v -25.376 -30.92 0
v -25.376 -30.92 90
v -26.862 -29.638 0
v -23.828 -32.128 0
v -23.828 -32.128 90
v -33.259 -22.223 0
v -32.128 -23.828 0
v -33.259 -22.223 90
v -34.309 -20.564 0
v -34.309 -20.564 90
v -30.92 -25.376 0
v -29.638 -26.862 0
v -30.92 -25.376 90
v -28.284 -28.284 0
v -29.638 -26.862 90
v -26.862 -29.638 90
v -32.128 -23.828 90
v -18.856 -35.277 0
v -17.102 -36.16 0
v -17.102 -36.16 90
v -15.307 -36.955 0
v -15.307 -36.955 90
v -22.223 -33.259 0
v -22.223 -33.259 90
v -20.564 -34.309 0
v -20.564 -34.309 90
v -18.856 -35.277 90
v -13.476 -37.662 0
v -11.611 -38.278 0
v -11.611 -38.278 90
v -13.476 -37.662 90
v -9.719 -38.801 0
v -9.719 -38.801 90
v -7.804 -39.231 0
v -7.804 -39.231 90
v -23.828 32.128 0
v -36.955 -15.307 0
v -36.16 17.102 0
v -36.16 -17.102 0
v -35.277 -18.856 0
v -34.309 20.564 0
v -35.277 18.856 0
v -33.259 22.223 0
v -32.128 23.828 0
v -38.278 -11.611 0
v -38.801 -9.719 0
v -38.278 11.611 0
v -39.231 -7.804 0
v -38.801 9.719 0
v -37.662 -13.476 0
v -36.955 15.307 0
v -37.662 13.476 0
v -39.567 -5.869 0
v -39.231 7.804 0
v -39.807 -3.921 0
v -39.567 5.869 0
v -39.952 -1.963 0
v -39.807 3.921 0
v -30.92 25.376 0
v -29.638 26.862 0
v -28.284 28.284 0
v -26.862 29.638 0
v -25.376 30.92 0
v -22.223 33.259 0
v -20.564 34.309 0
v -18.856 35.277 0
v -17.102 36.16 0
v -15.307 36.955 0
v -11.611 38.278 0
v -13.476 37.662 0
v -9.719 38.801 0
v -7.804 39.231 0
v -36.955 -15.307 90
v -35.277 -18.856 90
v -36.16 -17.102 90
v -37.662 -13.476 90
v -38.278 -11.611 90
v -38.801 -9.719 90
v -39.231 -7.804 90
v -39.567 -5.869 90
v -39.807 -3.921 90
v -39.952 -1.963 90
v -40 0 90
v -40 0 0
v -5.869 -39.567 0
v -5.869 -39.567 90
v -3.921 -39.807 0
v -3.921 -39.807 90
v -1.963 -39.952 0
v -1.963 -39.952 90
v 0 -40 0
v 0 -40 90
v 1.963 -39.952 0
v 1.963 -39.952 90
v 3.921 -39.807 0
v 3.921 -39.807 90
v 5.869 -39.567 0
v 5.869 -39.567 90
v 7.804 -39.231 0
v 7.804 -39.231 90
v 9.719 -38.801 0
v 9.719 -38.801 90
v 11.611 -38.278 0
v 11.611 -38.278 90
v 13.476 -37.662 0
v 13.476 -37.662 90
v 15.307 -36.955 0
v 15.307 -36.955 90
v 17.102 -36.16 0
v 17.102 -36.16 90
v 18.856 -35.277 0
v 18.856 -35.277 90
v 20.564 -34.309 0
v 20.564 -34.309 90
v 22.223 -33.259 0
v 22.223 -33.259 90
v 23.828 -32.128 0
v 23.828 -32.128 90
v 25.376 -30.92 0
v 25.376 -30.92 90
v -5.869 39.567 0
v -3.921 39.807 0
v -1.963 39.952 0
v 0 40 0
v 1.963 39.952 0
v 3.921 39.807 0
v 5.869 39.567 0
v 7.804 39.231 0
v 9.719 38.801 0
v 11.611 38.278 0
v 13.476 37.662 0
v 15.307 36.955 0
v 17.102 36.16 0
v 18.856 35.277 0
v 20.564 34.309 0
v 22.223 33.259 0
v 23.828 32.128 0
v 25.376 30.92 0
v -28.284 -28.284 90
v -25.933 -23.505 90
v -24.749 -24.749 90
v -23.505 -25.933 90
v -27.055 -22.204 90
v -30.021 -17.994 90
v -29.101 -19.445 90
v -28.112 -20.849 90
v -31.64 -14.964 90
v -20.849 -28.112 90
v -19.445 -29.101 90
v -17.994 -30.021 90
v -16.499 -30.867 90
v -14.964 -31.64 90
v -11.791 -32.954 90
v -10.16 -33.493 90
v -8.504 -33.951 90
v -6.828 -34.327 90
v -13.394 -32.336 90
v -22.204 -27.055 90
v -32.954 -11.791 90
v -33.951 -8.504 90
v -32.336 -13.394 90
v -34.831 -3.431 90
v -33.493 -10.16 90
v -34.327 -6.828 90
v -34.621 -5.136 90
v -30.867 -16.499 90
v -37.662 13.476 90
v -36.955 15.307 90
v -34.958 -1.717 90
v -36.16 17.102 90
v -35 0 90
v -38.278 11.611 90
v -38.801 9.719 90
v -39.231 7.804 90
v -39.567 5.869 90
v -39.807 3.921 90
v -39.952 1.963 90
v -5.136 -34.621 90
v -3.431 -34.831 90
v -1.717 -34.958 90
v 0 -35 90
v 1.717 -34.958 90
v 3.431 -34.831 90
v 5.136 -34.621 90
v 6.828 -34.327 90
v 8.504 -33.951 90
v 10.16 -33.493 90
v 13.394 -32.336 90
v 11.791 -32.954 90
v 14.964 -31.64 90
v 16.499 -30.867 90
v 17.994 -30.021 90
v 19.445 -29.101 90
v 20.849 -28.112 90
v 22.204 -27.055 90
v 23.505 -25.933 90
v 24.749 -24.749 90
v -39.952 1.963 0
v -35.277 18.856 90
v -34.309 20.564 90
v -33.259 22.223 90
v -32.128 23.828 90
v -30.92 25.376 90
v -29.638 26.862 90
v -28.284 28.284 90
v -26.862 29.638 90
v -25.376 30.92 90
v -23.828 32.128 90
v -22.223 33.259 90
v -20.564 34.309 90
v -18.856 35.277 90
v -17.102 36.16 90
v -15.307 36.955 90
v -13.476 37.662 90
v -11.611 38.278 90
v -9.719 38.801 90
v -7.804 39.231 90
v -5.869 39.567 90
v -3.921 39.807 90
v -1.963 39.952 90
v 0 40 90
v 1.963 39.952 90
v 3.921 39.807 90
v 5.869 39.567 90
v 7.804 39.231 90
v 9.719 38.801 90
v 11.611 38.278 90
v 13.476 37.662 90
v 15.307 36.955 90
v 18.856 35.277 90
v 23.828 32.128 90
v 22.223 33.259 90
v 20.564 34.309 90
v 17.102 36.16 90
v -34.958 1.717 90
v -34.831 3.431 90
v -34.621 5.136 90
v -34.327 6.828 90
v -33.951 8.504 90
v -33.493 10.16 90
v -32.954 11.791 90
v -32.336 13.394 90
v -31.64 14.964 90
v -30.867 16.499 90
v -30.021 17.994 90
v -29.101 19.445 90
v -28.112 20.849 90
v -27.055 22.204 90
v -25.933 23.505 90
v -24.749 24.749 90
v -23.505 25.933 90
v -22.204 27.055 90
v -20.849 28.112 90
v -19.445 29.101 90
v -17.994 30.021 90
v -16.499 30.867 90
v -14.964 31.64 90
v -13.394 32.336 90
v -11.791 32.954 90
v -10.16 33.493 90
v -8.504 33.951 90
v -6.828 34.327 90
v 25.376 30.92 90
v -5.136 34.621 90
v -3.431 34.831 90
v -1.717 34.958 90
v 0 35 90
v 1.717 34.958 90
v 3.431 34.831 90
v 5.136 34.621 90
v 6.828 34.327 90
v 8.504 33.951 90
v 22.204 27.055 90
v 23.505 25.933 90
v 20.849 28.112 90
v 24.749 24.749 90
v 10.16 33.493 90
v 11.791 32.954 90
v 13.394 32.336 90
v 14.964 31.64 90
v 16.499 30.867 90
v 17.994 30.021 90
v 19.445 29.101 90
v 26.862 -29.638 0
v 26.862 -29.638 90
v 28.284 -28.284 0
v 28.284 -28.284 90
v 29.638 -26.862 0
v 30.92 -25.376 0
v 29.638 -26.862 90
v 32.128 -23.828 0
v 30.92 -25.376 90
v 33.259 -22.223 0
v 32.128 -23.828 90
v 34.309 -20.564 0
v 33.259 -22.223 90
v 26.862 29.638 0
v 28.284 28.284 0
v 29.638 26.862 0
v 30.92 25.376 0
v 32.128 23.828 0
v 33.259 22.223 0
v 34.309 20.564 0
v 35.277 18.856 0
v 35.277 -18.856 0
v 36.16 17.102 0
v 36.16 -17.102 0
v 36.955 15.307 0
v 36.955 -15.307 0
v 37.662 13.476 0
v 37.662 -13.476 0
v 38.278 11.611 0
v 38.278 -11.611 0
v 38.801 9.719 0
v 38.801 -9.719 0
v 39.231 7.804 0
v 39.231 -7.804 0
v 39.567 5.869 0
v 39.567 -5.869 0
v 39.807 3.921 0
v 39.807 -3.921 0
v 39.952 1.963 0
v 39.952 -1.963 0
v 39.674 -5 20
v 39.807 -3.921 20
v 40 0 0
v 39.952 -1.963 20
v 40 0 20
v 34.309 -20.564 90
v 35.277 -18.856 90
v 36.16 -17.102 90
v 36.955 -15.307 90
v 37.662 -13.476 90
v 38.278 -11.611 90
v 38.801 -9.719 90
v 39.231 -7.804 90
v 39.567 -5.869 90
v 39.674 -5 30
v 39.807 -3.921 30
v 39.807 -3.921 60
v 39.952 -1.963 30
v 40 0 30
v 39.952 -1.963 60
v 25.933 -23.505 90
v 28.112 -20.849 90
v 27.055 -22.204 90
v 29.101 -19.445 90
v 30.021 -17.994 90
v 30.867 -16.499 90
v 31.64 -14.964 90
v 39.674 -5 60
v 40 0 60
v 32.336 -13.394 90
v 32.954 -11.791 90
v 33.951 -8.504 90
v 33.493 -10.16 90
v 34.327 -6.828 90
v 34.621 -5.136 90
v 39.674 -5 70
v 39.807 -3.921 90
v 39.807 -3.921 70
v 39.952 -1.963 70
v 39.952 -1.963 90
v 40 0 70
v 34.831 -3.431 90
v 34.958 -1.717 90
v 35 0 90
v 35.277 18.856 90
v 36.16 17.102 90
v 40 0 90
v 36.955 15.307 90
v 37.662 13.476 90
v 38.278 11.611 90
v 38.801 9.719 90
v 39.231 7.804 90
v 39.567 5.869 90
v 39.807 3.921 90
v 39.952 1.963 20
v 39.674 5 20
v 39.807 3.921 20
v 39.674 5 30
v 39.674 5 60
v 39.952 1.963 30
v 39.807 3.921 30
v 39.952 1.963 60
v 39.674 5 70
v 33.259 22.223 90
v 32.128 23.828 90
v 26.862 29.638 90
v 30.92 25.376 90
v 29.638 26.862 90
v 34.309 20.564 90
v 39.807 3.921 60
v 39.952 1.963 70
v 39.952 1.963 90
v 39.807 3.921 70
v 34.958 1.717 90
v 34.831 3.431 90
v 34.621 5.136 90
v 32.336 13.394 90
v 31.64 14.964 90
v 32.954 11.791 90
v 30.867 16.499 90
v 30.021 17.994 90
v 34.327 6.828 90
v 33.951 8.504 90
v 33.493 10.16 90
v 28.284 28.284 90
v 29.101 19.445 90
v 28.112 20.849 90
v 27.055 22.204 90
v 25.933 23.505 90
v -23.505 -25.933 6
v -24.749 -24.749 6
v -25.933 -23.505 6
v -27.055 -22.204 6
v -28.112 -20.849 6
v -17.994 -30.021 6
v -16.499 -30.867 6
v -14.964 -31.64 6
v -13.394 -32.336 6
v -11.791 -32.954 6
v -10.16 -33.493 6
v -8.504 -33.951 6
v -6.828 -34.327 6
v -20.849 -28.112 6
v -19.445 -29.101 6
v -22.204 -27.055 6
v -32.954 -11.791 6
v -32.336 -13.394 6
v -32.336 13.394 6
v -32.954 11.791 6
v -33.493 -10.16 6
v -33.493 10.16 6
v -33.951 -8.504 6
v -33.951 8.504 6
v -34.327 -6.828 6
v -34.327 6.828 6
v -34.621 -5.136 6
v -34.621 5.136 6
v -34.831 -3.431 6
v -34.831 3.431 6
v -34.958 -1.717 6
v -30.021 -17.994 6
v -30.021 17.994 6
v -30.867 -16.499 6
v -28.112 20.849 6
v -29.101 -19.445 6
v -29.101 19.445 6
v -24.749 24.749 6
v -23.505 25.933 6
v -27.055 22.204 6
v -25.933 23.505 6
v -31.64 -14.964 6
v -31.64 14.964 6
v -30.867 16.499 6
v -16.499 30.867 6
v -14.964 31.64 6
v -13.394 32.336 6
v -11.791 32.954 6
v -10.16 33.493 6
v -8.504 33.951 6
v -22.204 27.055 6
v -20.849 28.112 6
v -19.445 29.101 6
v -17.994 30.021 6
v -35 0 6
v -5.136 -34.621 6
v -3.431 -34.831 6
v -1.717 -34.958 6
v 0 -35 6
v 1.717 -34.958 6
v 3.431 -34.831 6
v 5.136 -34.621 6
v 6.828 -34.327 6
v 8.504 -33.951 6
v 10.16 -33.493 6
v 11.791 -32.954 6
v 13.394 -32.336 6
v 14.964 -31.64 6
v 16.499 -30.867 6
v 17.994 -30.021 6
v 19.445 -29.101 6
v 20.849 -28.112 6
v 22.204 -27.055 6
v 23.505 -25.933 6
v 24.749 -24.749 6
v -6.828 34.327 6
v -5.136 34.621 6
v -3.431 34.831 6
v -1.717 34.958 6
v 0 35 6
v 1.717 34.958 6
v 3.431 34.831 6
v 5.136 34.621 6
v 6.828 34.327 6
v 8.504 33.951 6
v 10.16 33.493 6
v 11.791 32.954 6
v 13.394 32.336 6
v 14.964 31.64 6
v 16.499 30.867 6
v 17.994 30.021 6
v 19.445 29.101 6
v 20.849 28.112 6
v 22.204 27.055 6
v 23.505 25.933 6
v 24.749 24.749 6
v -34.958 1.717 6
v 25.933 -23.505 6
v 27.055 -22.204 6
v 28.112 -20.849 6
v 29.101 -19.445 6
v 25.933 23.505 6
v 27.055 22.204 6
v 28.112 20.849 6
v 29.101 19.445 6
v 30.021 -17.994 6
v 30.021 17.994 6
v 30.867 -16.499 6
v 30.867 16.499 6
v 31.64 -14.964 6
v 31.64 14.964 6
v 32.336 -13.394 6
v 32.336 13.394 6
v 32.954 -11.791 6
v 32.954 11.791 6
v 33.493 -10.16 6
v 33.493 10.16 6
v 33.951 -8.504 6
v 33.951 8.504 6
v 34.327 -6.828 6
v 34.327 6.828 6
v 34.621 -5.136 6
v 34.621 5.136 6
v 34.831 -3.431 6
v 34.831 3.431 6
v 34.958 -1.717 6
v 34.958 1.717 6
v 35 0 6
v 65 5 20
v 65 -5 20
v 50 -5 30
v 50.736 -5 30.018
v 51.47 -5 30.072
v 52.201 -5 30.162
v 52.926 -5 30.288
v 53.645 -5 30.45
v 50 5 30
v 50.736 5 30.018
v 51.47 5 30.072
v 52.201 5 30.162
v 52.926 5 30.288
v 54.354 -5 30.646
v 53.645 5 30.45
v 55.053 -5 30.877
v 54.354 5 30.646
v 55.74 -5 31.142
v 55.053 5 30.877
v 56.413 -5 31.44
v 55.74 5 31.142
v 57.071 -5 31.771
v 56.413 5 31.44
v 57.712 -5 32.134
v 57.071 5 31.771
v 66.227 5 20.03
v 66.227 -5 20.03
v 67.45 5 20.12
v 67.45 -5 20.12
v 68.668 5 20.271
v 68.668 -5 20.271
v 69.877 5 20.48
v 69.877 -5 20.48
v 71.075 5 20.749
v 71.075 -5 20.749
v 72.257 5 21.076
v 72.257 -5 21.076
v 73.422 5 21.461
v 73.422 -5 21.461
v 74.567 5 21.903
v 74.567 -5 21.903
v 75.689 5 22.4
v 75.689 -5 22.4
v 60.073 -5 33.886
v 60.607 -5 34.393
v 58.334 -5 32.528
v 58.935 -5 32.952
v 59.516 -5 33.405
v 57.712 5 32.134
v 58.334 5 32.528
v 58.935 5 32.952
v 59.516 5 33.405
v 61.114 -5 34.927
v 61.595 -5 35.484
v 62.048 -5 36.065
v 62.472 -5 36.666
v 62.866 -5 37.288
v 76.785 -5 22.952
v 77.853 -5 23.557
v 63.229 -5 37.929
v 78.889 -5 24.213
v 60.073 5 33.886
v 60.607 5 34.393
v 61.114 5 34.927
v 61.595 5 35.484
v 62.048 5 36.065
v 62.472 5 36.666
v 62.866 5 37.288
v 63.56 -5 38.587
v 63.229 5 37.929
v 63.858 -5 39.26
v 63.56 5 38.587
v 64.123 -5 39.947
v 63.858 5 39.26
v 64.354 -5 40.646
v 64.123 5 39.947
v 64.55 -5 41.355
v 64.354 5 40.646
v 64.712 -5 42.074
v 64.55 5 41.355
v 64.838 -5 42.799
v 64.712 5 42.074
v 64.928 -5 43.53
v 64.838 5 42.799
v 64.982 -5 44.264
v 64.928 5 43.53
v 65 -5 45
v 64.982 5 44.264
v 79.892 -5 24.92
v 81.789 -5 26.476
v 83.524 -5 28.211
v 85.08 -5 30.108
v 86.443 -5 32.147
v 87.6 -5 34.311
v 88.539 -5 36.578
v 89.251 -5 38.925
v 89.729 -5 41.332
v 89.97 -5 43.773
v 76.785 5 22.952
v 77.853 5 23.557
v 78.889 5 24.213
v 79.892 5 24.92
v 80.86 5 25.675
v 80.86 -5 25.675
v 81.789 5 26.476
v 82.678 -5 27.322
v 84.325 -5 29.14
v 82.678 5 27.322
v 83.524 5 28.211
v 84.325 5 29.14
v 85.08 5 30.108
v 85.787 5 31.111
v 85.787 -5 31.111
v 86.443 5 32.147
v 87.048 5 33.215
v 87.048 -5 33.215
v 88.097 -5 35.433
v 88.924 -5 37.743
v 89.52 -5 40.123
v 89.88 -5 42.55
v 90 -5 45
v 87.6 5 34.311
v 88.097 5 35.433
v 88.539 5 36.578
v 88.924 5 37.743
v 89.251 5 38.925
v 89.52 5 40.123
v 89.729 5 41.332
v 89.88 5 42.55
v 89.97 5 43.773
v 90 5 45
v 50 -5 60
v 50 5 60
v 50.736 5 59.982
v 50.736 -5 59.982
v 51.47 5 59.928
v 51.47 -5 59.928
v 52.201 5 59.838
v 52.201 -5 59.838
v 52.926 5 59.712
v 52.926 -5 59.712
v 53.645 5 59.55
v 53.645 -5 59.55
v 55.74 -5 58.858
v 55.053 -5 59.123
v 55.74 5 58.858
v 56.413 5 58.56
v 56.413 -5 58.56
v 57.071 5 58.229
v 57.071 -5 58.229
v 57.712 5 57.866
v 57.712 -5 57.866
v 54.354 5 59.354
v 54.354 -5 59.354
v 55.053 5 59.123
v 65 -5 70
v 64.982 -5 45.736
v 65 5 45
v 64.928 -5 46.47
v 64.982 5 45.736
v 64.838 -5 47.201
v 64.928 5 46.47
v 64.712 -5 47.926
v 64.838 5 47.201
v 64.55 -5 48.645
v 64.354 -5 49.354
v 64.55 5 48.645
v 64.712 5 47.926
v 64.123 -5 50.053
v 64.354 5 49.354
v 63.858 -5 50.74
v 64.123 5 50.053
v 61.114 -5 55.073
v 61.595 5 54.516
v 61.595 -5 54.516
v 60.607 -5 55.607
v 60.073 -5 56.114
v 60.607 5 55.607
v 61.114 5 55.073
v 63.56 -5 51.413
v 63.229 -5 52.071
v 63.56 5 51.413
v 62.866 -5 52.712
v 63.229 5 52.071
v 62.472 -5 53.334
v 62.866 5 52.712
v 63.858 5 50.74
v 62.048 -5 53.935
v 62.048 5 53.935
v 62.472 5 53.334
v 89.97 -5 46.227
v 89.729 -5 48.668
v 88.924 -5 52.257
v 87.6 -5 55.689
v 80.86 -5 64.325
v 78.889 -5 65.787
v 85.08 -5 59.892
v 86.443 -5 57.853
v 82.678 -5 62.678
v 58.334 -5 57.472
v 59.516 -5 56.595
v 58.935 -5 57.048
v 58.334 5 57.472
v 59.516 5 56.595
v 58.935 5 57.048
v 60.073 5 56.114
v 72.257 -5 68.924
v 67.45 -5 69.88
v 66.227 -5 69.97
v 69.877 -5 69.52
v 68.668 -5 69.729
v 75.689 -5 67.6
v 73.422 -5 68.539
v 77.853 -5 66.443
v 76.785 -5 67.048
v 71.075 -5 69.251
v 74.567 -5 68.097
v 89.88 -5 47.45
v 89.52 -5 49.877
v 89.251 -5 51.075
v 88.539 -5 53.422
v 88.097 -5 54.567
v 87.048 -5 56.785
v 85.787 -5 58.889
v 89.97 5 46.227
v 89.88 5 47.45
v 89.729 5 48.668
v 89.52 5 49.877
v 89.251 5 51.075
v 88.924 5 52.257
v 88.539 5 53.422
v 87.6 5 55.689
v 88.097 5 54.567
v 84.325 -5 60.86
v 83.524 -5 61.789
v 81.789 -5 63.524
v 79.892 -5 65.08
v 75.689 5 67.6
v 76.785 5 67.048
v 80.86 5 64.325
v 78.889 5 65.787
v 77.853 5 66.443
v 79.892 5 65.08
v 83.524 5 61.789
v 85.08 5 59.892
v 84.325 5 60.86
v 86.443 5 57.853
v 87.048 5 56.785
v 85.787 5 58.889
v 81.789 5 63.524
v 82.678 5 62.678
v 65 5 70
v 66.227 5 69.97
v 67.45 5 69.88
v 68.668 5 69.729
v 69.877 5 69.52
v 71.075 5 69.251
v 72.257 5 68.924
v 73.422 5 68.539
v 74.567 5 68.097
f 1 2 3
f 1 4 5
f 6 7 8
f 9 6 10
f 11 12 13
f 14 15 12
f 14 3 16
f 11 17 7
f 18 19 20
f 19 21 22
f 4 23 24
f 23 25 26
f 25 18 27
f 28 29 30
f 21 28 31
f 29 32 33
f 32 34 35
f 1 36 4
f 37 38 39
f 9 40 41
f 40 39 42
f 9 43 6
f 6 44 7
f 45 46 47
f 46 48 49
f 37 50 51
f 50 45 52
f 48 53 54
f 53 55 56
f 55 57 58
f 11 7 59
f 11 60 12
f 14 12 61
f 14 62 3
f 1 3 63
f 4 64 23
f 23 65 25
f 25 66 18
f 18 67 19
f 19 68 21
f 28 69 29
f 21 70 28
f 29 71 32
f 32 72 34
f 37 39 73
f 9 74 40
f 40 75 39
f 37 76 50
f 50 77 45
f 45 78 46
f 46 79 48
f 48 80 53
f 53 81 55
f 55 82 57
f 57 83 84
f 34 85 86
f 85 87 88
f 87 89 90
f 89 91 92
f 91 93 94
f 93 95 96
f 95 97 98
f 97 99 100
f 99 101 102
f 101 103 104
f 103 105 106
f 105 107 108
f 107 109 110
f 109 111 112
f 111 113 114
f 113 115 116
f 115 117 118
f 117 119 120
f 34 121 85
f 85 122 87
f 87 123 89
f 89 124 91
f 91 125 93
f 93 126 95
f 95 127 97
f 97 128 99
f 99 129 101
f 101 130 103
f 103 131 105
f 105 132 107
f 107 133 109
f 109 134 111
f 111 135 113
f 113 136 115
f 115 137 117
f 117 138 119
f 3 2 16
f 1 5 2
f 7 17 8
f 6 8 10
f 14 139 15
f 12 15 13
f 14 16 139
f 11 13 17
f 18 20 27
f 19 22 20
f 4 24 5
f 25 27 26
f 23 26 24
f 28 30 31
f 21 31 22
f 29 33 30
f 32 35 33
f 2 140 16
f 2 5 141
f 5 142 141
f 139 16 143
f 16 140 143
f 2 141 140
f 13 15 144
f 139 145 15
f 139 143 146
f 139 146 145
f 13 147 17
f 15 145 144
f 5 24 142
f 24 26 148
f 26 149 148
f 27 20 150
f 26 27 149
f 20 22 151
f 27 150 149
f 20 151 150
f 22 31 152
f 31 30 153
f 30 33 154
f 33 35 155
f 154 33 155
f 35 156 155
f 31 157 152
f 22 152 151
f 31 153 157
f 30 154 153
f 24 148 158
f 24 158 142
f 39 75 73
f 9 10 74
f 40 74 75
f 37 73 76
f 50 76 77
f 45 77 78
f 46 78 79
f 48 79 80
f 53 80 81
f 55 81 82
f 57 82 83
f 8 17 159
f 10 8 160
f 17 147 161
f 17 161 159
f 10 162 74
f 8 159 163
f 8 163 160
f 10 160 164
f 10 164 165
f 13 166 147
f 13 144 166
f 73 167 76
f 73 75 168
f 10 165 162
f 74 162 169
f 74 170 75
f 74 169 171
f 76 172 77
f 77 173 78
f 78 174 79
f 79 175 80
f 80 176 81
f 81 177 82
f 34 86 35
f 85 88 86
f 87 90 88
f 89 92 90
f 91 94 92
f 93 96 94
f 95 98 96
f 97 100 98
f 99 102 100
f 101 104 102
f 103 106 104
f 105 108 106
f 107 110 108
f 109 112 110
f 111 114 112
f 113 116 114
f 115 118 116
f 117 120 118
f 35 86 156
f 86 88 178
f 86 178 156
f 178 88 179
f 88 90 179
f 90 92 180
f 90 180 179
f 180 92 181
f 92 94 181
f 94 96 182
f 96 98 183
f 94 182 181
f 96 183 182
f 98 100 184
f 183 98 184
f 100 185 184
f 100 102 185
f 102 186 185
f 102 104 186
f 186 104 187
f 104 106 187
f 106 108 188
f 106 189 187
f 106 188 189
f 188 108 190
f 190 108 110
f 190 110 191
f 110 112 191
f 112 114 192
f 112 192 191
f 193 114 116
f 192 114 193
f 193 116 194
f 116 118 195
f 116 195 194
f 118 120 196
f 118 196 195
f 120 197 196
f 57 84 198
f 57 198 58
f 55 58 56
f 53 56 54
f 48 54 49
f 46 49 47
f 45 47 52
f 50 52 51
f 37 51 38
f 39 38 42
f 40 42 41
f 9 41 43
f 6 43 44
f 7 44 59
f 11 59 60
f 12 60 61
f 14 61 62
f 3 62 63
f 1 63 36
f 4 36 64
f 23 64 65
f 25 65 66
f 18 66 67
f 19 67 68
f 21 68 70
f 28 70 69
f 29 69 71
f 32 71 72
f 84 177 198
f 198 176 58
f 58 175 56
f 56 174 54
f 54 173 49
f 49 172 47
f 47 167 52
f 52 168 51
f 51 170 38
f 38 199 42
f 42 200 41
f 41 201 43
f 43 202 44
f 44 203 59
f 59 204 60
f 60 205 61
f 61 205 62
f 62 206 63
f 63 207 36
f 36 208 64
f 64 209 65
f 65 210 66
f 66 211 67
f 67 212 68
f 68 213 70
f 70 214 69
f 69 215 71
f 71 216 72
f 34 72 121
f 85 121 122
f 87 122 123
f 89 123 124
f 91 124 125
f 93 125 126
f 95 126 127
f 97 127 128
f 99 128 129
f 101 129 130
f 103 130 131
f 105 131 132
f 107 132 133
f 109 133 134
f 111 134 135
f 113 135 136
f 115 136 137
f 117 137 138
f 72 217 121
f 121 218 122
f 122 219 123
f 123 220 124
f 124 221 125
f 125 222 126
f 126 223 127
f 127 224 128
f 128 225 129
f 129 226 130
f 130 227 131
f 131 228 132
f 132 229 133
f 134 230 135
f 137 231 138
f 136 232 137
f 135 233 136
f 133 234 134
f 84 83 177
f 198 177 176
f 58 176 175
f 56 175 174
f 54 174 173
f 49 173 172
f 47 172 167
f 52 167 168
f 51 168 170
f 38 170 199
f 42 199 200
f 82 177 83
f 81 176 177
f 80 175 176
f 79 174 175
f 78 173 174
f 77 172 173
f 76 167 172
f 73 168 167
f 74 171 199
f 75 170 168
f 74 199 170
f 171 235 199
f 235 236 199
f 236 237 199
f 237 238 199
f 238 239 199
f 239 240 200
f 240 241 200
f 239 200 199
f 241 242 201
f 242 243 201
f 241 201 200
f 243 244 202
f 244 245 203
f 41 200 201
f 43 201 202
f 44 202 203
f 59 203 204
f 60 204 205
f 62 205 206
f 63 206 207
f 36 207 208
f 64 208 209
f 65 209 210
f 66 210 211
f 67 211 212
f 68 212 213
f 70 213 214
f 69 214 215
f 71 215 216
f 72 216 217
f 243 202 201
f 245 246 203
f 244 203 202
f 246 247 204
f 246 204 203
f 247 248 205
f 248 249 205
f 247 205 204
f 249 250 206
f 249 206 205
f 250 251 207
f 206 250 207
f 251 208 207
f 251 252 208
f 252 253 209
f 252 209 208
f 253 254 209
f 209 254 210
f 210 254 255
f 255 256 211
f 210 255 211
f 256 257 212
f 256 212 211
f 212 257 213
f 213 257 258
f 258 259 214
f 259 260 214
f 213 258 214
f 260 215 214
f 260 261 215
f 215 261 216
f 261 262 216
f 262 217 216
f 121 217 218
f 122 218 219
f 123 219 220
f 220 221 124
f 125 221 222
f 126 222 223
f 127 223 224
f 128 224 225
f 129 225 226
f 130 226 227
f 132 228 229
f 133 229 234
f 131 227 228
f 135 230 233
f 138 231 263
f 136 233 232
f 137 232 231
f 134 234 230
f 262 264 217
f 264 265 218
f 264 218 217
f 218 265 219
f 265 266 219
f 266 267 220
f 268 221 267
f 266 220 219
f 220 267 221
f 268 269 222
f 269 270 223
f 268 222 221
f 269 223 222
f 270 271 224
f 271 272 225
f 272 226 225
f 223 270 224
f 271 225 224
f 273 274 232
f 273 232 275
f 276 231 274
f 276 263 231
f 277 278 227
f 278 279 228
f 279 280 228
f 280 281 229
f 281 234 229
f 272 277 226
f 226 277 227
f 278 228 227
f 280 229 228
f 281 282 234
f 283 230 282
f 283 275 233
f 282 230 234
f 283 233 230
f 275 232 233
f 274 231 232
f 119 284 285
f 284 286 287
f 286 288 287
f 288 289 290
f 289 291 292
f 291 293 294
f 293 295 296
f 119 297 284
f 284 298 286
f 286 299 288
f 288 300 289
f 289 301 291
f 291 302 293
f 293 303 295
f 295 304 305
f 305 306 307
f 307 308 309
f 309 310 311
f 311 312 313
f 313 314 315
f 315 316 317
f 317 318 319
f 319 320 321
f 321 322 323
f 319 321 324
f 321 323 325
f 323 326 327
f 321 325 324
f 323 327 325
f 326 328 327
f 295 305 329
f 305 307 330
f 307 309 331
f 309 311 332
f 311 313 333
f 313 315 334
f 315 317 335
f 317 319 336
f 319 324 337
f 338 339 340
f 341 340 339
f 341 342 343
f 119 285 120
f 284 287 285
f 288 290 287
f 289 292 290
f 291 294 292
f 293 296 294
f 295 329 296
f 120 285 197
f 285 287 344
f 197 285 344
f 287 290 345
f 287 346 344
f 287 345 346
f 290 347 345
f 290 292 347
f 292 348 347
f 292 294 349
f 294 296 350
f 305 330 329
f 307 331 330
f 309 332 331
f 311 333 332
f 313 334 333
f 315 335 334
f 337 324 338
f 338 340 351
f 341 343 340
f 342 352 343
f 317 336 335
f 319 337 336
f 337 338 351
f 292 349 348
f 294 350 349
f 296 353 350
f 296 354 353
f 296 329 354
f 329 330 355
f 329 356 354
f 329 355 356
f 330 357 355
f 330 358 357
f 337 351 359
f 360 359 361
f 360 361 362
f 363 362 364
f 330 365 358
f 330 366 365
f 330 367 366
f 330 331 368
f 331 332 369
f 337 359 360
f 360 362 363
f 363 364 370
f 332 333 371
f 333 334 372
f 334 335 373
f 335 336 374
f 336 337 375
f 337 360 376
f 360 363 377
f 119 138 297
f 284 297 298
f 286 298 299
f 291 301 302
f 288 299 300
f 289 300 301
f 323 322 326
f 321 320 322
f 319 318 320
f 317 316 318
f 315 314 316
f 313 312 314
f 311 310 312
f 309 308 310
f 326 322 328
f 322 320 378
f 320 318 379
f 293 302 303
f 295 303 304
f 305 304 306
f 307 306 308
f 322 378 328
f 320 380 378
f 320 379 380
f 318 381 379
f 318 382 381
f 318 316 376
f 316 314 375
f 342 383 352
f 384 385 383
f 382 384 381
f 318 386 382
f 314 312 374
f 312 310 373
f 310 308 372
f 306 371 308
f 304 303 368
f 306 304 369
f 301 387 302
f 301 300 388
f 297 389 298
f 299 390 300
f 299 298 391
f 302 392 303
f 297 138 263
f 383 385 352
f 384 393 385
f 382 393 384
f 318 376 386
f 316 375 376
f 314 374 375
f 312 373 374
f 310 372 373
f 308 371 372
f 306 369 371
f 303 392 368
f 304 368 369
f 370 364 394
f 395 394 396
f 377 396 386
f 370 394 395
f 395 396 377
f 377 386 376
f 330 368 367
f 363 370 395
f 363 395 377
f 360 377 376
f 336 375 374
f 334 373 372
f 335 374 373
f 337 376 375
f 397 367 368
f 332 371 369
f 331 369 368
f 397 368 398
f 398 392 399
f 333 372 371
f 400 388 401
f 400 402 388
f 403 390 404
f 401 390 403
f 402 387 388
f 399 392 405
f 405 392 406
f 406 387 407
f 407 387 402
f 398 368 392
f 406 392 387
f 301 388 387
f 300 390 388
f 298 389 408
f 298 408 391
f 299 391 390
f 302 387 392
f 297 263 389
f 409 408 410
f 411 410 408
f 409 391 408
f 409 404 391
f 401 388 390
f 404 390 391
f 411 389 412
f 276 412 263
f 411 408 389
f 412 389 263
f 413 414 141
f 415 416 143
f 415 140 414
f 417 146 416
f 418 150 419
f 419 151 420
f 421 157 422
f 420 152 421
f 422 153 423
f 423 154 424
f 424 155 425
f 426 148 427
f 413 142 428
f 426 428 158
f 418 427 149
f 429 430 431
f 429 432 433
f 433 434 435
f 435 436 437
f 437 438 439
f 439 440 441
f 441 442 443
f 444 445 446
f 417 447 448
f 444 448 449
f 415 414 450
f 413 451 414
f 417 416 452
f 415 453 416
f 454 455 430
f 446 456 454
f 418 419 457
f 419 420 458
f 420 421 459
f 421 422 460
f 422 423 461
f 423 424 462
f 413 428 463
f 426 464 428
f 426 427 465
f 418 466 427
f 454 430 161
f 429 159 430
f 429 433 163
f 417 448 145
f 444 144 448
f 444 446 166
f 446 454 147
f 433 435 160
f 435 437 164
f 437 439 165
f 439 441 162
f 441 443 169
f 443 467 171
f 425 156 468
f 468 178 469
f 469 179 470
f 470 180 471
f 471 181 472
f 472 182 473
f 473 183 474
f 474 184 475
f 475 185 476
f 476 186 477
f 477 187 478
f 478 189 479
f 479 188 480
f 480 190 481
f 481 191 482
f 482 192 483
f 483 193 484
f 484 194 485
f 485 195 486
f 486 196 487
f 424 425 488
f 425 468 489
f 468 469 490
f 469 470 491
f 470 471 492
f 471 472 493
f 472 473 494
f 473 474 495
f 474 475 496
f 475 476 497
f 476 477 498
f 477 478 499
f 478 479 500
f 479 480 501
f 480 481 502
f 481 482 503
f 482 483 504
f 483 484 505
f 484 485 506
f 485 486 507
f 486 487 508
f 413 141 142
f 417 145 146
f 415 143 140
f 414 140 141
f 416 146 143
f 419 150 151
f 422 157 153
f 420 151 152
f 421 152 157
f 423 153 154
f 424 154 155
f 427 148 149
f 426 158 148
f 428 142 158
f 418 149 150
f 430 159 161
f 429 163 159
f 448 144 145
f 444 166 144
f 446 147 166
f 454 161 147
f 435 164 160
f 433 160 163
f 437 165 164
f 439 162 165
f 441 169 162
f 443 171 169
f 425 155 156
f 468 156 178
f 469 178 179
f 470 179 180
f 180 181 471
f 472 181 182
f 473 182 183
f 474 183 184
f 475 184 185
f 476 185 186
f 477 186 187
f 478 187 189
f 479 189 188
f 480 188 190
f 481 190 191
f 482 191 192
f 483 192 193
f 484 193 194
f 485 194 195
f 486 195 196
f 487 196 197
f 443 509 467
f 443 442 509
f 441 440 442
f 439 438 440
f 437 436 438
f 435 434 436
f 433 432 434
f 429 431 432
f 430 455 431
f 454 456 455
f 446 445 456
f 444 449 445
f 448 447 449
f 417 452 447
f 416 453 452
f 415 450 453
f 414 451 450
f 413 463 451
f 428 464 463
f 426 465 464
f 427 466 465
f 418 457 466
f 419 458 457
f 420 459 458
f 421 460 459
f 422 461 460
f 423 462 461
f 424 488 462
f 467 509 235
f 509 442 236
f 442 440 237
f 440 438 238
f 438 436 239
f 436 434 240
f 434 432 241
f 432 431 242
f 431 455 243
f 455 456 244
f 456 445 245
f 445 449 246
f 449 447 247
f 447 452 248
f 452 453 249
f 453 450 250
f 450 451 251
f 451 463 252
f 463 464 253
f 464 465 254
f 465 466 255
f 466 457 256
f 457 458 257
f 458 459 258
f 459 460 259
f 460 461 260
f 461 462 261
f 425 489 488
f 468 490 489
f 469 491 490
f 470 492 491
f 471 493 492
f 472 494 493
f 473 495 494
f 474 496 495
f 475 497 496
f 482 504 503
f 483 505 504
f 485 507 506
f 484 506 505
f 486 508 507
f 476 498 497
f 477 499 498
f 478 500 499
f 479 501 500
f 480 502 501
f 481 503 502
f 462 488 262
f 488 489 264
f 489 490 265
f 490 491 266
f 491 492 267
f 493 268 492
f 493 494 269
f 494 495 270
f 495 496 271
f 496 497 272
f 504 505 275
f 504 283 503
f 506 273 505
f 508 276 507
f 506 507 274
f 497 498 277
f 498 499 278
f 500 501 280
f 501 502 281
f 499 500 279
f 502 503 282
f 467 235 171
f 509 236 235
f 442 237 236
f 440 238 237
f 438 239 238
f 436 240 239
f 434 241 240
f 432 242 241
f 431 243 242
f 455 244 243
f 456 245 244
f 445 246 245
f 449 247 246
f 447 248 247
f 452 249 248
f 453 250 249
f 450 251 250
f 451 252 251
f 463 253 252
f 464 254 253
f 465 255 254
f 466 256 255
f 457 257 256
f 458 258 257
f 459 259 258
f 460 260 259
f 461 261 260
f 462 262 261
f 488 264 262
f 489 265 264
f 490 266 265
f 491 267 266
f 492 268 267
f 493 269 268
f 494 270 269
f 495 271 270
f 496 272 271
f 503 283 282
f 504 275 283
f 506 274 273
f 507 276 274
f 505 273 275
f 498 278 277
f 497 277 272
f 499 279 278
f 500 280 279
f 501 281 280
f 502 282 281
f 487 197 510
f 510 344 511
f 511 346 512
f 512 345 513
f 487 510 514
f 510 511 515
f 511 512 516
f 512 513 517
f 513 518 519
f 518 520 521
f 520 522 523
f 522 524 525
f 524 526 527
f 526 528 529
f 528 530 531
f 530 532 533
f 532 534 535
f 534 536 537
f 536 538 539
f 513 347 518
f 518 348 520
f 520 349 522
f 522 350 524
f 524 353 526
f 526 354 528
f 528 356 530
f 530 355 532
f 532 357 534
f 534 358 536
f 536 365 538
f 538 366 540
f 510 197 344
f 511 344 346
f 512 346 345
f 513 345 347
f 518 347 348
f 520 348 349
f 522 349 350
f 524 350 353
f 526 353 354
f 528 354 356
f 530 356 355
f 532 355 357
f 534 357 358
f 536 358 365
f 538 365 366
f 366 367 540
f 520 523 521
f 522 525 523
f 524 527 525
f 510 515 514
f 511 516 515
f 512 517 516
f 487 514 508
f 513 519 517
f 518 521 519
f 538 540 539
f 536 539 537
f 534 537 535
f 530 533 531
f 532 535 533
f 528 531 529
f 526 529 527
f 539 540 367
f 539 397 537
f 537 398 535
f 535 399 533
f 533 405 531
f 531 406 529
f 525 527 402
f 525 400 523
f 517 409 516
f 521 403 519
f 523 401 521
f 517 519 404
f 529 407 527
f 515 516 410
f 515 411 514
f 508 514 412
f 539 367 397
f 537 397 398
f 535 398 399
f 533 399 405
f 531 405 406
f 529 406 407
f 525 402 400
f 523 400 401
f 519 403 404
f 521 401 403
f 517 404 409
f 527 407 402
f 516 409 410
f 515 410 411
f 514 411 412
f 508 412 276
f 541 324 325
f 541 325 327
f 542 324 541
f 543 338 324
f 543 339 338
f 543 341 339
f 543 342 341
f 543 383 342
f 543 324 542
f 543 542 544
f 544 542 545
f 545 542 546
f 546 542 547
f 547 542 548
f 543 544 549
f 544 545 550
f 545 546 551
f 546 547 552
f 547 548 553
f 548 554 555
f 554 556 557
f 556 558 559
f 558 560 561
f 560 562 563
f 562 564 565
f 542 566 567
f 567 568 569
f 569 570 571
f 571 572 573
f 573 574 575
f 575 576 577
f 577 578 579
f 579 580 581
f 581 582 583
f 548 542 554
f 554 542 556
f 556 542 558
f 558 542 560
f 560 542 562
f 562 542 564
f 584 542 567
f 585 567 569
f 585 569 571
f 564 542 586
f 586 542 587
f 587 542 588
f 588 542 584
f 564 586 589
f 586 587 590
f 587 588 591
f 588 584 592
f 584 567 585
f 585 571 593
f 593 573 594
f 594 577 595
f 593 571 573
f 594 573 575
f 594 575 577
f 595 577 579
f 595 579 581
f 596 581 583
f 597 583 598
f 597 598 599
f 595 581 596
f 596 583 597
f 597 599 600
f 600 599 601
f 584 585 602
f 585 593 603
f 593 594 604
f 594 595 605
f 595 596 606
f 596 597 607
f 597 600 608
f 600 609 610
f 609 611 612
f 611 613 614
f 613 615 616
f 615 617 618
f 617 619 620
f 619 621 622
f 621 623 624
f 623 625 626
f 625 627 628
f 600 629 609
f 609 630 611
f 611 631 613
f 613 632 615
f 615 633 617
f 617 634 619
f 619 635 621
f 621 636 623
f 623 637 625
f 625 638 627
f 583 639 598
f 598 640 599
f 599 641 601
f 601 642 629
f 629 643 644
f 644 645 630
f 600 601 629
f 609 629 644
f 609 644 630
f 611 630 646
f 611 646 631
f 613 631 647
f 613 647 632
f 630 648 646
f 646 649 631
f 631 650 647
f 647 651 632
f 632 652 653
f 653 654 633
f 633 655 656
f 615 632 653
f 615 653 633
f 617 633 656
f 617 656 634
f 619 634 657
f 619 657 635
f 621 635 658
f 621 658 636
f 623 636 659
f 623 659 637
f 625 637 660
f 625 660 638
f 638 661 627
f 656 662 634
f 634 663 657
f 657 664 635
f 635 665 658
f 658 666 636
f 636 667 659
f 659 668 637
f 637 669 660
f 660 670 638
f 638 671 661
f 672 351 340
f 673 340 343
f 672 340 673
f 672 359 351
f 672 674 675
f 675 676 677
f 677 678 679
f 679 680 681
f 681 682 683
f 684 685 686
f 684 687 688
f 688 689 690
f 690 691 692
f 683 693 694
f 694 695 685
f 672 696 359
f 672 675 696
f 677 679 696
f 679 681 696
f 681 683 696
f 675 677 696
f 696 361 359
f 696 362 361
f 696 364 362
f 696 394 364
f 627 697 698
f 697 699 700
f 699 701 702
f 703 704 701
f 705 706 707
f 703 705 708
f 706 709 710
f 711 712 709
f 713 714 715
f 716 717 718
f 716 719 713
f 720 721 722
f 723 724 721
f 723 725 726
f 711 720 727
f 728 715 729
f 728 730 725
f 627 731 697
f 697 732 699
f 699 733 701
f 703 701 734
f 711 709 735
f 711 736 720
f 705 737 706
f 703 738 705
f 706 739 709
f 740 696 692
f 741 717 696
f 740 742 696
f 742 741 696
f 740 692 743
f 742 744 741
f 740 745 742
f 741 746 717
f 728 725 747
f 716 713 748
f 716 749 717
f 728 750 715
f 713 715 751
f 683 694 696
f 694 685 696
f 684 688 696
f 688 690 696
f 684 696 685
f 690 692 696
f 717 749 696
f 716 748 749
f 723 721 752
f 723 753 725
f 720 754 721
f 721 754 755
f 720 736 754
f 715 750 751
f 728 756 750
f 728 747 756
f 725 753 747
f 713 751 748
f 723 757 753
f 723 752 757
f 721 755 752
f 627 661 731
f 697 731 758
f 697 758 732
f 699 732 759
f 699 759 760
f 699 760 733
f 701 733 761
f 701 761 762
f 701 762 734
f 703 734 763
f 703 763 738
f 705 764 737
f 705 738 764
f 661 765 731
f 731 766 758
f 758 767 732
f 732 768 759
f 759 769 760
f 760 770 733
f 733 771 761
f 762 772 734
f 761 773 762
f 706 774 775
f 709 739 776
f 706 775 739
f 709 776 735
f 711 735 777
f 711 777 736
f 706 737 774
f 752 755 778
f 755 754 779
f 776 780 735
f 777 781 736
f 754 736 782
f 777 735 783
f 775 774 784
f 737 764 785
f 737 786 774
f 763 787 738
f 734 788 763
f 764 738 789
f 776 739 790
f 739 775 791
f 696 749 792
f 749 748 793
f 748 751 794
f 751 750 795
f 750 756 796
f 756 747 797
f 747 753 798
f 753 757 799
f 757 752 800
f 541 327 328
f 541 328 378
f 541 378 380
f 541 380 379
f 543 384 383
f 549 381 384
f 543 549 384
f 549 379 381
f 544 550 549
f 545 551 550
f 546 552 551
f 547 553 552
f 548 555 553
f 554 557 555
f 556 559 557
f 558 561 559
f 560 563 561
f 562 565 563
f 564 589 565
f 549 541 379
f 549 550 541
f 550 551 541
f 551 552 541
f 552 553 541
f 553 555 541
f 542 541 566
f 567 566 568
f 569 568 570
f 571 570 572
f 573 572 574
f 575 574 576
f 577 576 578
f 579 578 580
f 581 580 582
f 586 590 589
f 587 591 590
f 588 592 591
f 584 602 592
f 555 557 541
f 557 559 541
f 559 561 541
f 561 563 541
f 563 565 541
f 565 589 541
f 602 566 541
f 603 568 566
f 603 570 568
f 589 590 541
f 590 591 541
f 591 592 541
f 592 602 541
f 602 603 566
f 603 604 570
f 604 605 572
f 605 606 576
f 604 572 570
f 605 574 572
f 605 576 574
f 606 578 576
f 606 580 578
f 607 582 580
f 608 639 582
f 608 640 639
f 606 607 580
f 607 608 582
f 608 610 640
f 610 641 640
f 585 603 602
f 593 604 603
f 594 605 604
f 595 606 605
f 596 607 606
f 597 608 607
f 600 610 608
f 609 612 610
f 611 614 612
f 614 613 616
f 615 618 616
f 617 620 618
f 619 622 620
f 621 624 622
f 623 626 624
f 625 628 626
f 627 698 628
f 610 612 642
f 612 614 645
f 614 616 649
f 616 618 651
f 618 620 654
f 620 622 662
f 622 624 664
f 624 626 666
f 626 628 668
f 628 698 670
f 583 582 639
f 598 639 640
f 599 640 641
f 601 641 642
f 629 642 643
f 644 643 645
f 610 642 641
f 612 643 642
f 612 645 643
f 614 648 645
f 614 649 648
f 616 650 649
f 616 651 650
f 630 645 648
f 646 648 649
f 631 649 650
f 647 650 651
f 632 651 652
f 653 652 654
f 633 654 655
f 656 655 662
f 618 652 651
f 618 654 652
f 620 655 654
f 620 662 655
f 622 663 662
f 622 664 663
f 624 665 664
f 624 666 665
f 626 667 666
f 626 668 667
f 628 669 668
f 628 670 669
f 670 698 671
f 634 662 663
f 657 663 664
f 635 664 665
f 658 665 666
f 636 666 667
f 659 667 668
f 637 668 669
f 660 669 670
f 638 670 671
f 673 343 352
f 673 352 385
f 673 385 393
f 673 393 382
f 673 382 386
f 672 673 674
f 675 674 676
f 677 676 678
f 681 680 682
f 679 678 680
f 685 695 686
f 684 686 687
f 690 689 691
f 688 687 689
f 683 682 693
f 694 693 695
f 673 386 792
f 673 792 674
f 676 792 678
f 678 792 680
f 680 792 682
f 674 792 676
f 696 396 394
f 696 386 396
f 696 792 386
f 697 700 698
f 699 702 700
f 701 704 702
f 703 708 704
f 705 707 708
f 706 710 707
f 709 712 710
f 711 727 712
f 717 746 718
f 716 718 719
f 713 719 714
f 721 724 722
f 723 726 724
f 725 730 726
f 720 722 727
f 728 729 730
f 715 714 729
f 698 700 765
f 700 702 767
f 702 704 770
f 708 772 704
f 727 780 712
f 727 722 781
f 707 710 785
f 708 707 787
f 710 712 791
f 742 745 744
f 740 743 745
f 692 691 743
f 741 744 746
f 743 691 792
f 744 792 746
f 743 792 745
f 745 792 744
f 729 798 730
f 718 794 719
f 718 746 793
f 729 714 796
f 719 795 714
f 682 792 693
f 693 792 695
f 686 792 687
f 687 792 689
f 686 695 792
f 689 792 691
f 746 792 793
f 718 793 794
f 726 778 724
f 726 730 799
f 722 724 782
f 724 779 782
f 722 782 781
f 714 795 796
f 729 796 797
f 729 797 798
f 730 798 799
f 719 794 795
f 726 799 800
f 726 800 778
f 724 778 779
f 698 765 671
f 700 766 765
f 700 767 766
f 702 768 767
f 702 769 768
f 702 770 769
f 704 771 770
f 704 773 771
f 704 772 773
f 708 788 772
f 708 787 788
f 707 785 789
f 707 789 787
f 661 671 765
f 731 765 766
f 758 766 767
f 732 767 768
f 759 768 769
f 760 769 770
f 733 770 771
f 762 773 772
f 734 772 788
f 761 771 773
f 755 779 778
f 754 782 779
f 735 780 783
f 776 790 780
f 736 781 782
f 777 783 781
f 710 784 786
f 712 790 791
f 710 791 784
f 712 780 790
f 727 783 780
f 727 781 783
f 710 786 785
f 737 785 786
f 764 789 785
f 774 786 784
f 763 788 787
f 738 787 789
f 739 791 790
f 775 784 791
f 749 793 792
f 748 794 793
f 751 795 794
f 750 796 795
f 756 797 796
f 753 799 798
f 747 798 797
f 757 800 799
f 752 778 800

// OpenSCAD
$fn = 128;

module mug_body() {
    difference() {
        cylinder(d = 80, h = 90);
        translate([0, 0, 6])
            cylinder(d = 70, h = 85);
    }
}

module handle() {
    translate([0, 0, 45])
        rotate([90, 0, 0])
            linear_extrude(height = 10, center = true)
                difference() {
                    union() {
                        translate([38, -25])
                            square([27, 50]);
                        translate([65, 0])
                            circle(r = 25);
                    }
                    union() {
                        translate([34, -15])
                            square([16, 30]);
                        translate([50, 0])
                            circle(r = 15);
                    }
                }
}

union() {
    mug_body();
    handle();
}
